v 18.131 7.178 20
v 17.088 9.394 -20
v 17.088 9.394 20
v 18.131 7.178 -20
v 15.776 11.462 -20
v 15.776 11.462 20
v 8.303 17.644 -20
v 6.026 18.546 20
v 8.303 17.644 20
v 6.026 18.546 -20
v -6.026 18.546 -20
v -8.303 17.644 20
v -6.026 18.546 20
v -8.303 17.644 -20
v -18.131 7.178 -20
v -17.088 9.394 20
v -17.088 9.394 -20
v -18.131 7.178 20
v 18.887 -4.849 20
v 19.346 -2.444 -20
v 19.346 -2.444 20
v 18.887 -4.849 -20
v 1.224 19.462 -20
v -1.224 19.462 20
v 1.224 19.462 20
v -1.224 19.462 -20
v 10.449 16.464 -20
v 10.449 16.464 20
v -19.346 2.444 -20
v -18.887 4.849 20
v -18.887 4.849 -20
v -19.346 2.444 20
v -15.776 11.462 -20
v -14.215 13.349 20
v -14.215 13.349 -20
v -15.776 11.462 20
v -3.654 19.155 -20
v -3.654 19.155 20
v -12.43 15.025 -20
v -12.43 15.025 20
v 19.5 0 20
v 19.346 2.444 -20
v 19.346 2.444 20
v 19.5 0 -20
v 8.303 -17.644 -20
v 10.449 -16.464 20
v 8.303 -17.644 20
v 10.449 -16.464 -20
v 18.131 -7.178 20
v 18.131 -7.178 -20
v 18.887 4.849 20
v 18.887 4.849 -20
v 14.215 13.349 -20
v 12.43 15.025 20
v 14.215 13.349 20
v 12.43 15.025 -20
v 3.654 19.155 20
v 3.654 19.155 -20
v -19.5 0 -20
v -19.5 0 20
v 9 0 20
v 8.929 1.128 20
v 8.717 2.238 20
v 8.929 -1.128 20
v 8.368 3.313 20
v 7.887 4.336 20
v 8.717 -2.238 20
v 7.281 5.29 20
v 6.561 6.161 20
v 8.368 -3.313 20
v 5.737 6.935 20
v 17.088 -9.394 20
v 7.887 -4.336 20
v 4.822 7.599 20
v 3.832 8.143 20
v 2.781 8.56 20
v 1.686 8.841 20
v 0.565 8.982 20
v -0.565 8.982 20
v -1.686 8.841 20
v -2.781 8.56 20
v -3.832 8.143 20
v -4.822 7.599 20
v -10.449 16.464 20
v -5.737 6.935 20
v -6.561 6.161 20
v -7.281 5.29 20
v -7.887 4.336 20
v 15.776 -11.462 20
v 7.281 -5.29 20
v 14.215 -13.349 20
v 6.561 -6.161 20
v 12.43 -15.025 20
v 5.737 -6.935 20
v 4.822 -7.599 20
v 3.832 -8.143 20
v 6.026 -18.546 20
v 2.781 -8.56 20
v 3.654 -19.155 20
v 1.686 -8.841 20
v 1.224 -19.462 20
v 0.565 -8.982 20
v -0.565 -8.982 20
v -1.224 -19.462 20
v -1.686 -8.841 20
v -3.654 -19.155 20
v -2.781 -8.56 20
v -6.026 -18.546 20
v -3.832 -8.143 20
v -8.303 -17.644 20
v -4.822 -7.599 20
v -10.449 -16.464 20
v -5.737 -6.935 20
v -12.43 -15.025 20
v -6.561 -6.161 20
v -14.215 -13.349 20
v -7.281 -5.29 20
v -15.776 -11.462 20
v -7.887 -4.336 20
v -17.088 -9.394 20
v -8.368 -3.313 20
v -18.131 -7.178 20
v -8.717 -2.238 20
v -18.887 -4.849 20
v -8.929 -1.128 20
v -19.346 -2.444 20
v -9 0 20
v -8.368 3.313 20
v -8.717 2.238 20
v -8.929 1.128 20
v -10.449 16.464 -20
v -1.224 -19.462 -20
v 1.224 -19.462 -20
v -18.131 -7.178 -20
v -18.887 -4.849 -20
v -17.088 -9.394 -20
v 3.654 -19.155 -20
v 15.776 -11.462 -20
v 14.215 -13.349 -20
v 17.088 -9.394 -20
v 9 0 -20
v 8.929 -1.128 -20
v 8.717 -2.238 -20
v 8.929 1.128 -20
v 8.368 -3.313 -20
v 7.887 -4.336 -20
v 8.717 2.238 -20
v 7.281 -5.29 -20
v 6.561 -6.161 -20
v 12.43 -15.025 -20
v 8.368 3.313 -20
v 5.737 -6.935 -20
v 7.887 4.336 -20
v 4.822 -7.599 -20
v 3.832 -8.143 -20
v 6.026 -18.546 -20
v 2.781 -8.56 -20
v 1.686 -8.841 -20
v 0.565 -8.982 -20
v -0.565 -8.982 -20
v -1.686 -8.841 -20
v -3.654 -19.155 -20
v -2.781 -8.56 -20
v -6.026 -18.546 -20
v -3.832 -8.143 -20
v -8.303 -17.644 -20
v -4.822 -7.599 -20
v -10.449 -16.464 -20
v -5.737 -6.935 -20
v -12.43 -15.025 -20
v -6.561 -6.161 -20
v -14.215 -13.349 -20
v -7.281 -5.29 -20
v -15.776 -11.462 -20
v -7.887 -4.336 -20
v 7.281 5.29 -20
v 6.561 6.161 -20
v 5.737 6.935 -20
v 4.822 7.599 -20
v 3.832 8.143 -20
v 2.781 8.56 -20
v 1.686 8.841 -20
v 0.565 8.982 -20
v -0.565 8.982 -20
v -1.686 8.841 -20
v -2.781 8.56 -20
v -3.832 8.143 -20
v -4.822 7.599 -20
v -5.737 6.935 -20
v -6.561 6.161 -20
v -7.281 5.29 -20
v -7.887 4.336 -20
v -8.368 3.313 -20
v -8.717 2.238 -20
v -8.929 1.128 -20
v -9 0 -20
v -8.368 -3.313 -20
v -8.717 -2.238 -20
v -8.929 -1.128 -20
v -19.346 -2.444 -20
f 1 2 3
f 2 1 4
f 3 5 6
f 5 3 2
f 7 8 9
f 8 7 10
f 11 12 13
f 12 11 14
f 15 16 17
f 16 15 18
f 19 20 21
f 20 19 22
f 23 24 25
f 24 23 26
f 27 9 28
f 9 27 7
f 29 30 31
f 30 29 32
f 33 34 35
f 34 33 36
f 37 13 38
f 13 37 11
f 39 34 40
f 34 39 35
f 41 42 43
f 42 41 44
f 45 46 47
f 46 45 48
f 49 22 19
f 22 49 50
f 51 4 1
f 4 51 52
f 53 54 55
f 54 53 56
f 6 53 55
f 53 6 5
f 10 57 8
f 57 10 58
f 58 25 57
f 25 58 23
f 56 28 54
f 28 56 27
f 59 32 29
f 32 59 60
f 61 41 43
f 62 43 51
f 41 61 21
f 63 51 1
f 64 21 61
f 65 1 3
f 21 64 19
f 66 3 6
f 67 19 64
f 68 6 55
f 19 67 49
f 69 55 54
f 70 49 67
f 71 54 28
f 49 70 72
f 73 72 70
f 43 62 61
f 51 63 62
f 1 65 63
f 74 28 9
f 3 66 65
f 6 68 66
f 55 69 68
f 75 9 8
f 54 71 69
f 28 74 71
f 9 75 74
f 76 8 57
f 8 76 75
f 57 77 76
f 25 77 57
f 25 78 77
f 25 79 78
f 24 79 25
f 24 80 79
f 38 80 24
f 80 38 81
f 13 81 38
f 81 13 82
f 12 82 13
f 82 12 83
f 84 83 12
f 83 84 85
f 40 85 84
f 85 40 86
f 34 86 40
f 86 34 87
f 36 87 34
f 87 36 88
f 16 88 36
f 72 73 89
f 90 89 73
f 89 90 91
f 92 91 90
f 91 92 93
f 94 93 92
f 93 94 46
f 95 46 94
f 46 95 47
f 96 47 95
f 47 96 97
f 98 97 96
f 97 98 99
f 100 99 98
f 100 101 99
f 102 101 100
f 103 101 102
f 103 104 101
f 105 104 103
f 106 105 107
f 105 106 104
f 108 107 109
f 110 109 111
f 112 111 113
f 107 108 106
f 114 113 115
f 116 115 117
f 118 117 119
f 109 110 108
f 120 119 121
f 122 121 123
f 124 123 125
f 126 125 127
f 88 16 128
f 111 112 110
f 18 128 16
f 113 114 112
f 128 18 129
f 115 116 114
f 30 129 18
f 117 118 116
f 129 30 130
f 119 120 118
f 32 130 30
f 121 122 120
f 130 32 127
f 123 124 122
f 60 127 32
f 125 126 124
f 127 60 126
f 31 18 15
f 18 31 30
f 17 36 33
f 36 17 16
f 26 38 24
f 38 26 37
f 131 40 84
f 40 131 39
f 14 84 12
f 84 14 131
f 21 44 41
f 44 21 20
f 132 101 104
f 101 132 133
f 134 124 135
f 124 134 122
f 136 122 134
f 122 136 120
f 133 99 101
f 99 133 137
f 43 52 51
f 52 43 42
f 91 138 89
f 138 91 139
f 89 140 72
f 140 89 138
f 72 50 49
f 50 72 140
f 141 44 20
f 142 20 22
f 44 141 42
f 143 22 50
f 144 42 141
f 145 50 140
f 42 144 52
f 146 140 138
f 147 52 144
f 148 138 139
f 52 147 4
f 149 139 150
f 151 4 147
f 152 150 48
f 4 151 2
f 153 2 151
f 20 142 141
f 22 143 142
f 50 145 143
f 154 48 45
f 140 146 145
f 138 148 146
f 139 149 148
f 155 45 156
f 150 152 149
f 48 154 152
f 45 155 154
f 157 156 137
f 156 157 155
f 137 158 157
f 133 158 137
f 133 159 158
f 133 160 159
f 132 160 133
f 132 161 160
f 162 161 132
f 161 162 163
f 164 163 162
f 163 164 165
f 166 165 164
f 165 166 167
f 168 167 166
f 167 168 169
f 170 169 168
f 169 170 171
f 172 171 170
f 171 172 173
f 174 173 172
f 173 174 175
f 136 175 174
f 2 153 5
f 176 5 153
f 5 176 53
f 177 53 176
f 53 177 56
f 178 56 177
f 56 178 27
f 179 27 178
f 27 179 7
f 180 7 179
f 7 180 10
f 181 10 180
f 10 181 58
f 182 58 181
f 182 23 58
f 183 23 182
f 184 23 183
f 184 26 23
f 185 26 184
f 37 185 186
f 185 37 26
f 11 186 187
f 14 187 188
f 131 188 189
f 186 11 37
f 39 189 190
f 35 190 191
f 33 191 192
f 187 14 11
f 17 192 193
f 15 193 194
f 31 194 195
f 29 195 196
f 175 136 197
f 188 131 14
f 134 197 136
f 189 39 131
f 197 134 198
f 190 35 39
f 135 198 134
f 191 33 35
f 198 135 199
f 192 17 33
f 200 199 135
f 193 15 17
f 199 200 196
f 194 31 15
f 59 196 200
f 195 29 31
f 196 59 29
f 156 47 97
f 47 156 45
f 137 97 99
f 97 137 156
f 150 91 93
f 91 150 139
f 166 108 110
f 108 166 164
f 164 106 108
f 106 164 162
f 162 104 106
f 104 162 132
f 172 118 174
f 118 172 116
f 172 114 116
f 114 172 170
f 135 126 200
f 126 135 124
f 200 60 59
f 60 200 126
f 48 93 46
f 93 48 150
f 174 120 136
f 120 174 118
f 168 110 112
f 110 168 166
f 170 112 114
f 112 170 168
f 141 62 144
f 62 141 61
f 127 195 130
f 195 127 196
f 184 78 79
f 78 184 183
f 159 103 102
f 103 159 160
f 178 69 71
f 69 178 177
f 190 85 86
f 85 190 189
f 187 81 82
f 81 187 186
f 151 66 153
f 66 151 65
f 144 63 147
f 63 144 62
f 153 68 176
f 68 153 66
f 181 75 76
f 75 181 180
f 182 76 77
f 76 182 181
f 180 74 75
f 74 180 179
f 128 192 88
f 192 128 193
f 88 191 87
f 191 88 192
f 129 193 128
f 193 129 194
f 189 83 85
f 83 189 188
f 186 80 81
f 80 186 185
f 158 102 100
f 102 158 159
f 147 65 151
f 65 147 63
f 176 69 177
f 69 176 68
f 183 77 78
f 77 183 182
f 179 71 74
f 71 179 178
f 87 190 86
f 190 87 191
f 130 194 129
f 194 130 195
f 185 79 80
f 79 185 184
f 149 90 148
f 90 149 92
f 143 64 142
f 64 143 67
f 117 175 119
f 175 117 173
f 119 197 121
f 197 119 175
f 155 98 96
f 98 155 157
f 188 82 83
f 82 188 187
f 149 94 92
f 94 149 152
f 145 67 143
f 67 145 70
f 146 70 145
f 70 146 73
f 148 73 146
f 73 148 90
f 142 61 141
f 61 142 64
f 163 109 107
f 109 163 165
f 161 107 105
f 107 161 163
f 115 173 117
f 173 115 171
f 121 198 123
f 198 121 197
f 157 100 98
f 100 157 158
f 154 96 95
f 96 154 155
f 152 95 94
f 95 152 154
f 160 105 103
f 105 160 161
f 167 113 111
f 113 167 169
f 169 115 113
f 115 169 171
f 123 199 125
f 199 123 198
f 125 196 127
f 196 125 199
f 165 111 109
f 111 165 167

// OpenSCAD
$fn = 50;


difference() {
	union() {
		translate(v = [0, 0, -20.0000000000]) {
			cylinder(h = 40, r = 19.5000000000);
		}
	}
	union() {
		translate(v = [0, 0, -100.0000000000]) {
			cylinder(h = 200, r = 9);
		}
	}
}
